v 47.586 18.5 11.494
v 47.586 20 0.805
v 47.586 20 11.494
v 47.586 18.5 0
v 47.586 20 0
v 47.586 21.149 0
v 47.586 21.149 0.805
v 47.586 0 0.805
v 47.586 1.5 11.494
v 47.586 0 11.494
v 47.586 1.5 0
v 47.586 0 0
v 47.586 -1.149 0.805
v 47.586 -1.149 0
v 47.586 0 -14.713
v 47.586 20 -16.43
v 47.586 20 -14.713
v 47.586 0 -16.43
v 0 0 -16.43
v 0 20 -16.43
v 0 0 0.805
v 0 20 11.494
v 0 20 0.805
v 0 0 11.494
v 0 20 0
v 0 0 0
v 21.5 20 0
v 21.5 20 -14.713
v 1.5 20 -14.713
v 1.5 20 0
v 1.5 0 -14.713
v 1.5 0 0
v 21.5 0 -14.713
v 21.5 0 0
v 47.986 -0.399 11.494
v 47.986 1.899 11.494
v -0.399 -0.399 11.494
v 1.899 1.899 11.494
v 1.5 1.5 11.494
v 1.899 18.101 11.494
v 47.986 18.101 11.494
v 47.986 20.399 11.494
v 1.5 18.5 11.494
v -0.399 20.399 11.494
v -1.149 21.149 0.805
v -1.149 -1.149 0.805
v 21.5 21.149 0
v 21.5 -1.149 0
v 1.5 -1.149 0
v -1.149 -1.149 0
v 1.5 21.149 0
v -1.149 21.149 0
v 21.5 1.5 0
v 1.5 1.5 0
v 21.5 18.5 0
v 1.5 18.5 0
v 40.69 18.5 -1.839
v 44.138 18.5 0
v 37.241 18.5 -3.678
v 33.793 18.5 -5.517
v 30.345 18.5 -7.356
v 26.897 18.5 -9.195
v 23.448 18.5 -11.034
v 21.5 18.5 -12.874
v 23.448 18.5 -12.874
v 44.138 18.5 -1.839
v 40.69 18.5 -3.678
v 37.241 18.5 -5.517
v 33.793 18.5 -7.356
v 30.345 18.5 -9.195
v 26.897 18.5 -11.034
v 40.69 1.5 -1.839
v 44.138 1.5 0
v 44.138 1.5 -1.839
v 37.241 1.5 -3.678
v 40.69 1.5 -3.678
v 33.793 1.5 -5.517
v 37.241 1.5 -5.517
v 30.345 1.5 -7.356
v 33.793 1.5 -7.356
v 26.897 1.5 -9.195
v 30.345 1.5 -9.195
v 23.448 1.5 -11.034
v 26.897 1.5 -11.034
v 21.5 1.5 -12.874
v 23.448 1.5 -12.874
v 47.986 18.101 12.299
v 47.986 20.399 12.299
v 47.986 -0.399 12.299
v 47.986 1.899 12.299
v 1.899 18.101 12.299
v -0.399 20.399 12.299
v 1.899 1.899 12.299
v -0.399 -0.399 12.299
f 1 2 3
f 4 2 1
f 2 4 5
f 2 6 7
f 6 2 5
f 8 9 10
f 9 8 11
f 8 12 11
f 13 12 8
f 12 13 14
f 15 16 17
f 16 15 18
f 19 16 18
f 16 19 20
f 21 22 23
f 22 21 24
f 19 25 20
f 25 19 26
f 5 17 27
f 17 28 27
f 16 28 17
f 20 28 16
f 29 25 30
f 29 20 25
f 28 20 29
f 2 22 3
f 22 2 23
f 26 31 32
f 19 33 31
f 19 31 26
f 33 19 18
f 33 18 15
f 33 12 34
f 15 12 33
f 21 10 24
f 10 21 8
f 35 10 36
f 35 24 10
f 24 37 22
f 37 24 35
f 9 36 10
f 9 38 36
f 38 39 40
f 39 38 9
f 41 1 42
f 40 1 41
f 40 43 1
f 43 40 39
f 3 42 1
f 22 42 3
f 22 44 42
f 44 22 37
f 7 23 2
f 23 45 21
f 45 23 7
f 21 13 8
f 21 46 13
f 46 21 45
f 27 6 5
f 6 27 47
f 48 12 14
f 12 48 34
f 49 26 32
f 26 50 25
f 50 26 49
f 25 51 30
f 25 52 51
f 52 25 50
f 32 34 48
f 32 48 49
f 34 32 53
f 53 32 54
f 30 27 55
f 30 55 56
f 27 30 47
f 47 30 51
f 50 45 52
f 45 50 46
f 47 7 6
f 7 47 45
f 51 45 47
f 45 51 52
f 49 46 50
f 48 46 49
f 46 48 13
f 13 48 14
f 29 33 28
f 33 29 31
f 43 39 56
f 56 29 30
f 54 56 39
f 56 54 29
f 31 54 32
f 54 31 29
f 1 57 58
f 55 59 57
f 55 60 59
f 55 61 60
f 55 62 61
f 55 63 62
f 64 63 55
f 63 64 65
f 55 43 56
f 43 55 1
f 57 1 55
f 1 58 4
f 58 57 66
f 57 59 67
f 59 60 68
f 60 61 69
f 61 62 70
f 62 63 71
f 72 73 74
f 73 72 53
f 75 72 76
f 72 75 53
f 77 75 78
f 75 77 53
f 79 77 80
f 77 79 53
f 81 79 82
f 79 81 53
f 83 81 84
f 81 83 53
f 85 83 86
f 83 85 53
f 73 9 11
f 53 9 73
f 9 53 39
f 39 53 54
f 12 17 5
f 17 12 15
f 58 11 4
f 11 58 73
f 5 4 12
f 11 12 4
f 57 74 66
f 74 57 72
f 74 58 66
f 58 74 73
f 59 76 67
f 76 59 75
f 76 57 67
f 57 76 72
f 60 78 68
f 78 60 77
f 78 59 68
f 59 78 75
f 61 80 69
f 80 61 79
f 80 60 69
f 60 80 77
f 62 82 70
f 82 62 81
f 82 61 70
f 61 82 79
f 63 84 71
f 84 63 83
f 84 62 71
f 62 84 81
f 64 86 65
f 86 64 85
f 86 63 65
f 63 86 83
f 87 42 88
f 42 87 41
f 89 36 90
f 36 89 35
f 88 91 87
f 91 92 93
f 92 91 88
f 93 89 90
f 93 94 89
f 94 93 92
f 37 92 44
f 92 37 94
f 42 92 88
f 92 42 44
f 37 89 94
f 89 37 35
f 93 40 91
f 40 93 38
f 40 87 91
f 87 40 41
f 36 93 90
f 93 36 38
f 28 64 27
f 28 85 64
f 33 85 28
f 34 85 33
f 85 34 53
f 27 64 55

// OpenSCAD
Main();

module Main() {
  width = 20;
  platformHeight = 16.43;
  aboveGroundWallHeight = m_to_h0(1.0);
  stepdepth_rl_cm = 30;
  stepheight_rl_cm = 16;
  wallThickness = 1.5;
  minimumFloorThickness = 1;
  tunnelSize = 20;
  lipWidth = cm_to_h0(10);
  lipThickness = cm_to_h0(7);
  topWidth = cm_to_h0(20);
  topThickness = cm_to_h0(7);

  stepdepth = cm_to_h0(stepdepth_rl_cm);
  stepheight = cm_to_h0(stepheight_rl_cm);
  stepcount = floor((platformHeight - minimumFloorThickness) / stepheight);
  totalStepLength = stepcount * stepdepth;
  totalStepHeight = stepcount * stepheight;
  actualFloorThickness = platformHeight - totalStepHeight;

  totalWallLength = totalStepLength + tunnelSize;

  echo("Total step height: ", totalStepHeight);
  echo("Actual floor thickness: ", actualFloorThickness);
  echo("Above ground Wall Height: ", aboveGroundWallHeight);
  echo("Step height: ", stepheight);
  echo("Step depth: ", stepdepth);
  echo("Lipwidth: ", lipWidth);
  echo("Stepsanity (should be close to 62cm): ", 2 * stepheight_rl_cm + stepdepth_rl_cm);
  echo("Total Wall Length", totalWallLength);

  difference() {
    union() {
      Staircase(platformHeight, aboveGroundWallHeight, width, wallThickness, actualFloorThickness, totalWallLength, lipWidth, lipThickness);
      translate([ totalWallLength, width / 2, 0 ])
        Stairs(width = width, stepcount = stepcount, stepdepth = stepdepth, stepheight = stepheight);
      Top(width, aboveGroundWallHeight, topWidth, topThickness, wallThickness, totalWallLength);
    }
    Tunnel(width, totalStepHeight, totalStepLength, tunnelSize, wallThickness);
  }
}

module Staircase(platformHeight, aboveGroundWallHeight, width, wallThickness, floorThickness, totalWallLength, lipWidth, lipThickness) {
  difference() {
    union() {
      StaircaseUnderground(platformHeight, width, wallThickness, floorThickness, totalWallLength);
      StaircaseAboveGround(aboveGroundWallHeight, width, wallThickness, totalWallLength);
      Lip(width, lipWidth, lipThickness, wallThickness, totalWallLength);
    }
    Stairwell(platformHeight, width, wallThickness, floorThickness, totalWallLength);
  }
}

module Tunnel(width, totalStepHeight, totalStepLength, tunnelSize, wallThickness) {
  oversize = 50;
  tWidth = width + oversize;
  translate([ wallThickness, width / 2 - tWidth / 2, -totalStepHeight ]) cube([ tunnelSize, tWidth, totalStepHeight ]);
}

module Stairs(width, stepcount, stepdepth, stepheight) {
  union() {
    for (i = [0:stepcount])
      translate([ -(i * stepdepth), -width / 2, -(stepheight * i) ]) cube([ stepdepth * i, width, stepheight ]);
  }
}

module Stairwell(platformHeight, width, wallThickness, floorThickness, totalWallLength) {
  oversize = 50;
  translate([ wallThickness, wallThickness, -platformHeight + floorThickness ])
    cube([ totalWallLength + oversize, width - 2 * wallThickness, platformHeight + oversize ], false);
}

module StaircaseUnderground(platformHeight, width, wallThickness, floorThickness, totalWallLength) {
  translate([ 0, 0, -platformHeight ]) cube([ totalWallLength, width, platformHeight ], false);
}

module StaircaseAboveGround(aboveGroundWallHeight, width, wallThickness, totalWallLength) {
  translate([ 0, 0, 0 ]) cube([ totalWallLength, width, aboveGroundWallHeight ], false);
}

module Lip(width, lipWidth, lipThickness, wallThickness, totalWallLength) {
  translate([ -lipWidth, -lipWidth, 0 ]) cube([ totalWallLength + lipWidth, width + lipWidth * 2, lipThickness ], false);
}

module Top(width, aboveGroundWallHeight, topWidth, topThickness, wallThickness, totalWallLength) {
  oversize = 10;
  overhang = (topWidth - wallThickness) / 2;
  topBoxWidth = width + 2 * overhang;
  topBoxSubtractWidth = topBoxWidth - 2 * topWidth;
  topBoxLength = totalWallLength + 2 * overhang;

  difference() {
    translate([ -overhang, -overhang, aboveGroundWallHeight ]) cube([ topBoxLength, topBoxWidth, topThickness ], false);
    translate([ -overhang + topWidth, -topBoxSubtractWidth / 2 + width / 2, aboveGroundWallHeight - 1 ])
      cube([ topBoxLength, topBoxSubtractWidth, topThickness + 2 ], false);
  }
}

function m_to_h0(m) = m / 87 * 1000;
function cm_to_h0(cm) = cm / 87 * 10;
